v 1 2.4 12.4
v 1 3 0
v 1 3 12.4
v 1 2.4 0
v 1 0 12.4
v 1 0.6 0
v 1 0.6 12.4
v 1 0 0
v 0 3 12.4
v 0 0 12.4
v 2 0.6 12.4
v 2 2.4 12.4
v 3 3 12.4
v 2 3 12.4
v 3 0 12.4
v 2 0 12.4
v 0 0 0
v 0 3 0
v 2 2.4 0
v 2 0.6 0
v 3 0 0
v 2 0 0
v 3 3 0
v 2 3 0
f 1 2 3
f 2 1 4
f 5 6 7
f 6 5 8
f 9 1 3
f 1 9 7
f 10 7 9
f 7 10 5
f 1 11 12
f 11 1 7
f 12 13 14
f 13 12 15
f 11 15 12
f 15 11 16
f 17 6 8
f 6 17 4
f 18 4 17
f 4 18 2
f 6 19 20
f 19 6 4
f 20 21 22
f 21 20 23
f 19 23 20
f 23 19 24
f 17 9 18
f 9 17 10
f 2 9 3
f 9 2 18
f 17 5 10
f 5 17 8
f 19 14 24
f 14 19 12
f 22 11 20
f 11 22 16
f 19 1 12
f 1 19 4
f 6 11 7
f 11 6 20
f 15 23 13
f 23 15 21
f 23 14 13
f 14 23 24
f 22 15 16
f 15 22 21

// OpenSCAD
// file: ../lib/ssd1306.scad
/*
 * SPDX-FileCopyrightText: 2022-2024 Rafael G. Martins <rafael@rafaelmartins.eng.br>
 * SPDX-License-Identifier: CERN-OHL-S-2.0
 */

ssd1306_pcb_thickness = 1.6;
ssd1306_pcb_base_height = 2;
ssd1306_pcb_base_d = 4;
ssd1306_pcb_base_screw_d = 1.8;
ssd1306_pcb_base_spacing_x = 23.5;
ssd1306_pcb_base_spacing_y = 23.8;
ssd1306_screen_width = 24.5;
ssd1306_screen_height = 13;
ssd1306_screen_distance_x = (ssd1306_pcb_base_spacing_x - ssd1306_screen_width) / 2;
ssd1306_screen_distance_y = 3.5;
ssd1306_pin_distance_y = 0.45;


module ssd1306_add(thickness) {
    translate([-ssd1306_pcb_base_d / 2, -ssd1306_pcb_base_d / 2, 0])
        cube([ssd1306_pcb_base_spacing_x + ssd1306_pcb_base_d,
              ssd1306_pcb_base_spacing_y + ssd1306_pcb_base_d,
              thickness]);

    for(i=[0:1])
        for(j=[0:1])
            translate([i * ssd1306_pcb_base_spacing_x, j * ssd1306_pcb_base_spacing_y, thickness])
                cylinder(ssd1306_pcb_base_height, d=ssd1306_pcb_base_d, $fn=20);
}


module ssd1306_sub(thickness) {
    translate([ssd1306_screen_distance_x, ssd1306_screen_distance_y, 0])
        cube([ssd1306_screen_width, ssd1306_screen_height, thickness]);

    for(i=[0:1])
        for(j=[0:1])
            translate([i * ssd1306_pcb_base_spacing_x, j * ssd1306_pcb_base_spacing_y, thickness])
                cylinder(ssd1306_pcb_base_height, d=ssd1306_pcb_base_screw_d, $fn=20);
}
// file: ../lib/led-holder.scad
/*
 * SPDX-FileCopyrightText: 2022 Rafael G. Martins <rafael@rafaelmartins.eng.br>
 * SPDX-License-Identifier: CERN-OHL-S-2.0
 */

module led_holder(height) {
    led_width = 1.8;
    led_length = 1;
    led_margin = 1;

    width_ = 3;
    length_ = 2 * led_margin + led_length;

    cube([led_margin, width_, height]);
    translate([led_margin, (width_ - led_width) / 2, 0])
        cube([led_length, led_width, height]);
    translate([length_ - led_margin, 0, 0])
        cube([led_margin, width_, height]);
}
// file: settings.scad
/*
 * SPDX-FileCopyrightText: 2024 Rafael G. Martins <rafael@rafaelmartins.eng.br>
 * SPDX-License-Identifier: CERN-OHL-S-2.0
 */

include <../lib/ssd1306.scad>

screw_d = 2;
screw_h = 8;
thickness = 2;
gap = 0;

front_screw_padding = 3.5;

pcb_base_d = 5;
pcb_base_screw_d = 1.8;
pcb_screw_padding = 2.54;
pcb_thickness = 1.6;

pcb_padding_x = thickness + 1;
pcb_padding_y = thickness + 1;

display_pcb_length = 39.624;
display_pcb_width = 33.782;

display_pcb0_x = pcb_padding_x;
display_pcb0_y = pcb_padding_y;

display_length = display_pcb_length + 2 * pcb_padding_x;
display_width = display_pcb_width + pcb_padding_y;

switches_pcb_length = 84.582;
switches_pcb_width = 45.974;

switches_length = switches_pcb_length + 2 * pcb_padding_x;
switches_width = switches_pcb_width + 2 * pcb_padding_y;

switches_pcb_base_distance_x = 39.751;
switches_pcb_base_distance_y = 20.447;

oled_socket_height = 8.5;
oled_pin0_y = 5.334;
oled0_x = (display_length - ssd1306_pcb_base_spacing_x) / 2;
oled0_y = display_pcb0_y + oled_pin0_y + ssd1306_pin_distance_y;

display_pcb_base_distance = 34.544;
display_pcb_base_height = 2.8 + oled_socket_height + ssd1306_pcb_thickness + ssd1306_pcb_base_height;

switches_pcb_base_height = 6 - thickness;

usb_height = 4.4;
usb_width = 8.2;
usb_distance_x = pcb_padding_x + 29.210 - usb_width / 2;
usb_distance_z = thickness + display_pcb_base_height + pcb_thickness - 0.1;

display_height = usb_distance_z + usb_height + 0.8 + thickness;
display_height_in = display_pcb_base_height - switches_pcb_base_height - thickness;

switches_height = display_height - display_pcb_base_height + switches_pcb_base_height;

led0_x = 37.211;
led0_y = 15.24;
led_d = 3.2;

key_dim = 16;
key_distance = 19.304;
key0_x = 13.335 - key_dim / 2;
key0_y = key0_x;
// main file
/*
 * SPDX-FileCopyrightText: 2022 Rafael G. Martins <rafael@rafaelmartins.eng.br>
 * SPDX-License-Identifier: CERN-OHL-S-2.0
 */

include <settings.scad>
include <../lib/led-holder.scad>

led_holder(display_pcb_base_height - 2.5);
